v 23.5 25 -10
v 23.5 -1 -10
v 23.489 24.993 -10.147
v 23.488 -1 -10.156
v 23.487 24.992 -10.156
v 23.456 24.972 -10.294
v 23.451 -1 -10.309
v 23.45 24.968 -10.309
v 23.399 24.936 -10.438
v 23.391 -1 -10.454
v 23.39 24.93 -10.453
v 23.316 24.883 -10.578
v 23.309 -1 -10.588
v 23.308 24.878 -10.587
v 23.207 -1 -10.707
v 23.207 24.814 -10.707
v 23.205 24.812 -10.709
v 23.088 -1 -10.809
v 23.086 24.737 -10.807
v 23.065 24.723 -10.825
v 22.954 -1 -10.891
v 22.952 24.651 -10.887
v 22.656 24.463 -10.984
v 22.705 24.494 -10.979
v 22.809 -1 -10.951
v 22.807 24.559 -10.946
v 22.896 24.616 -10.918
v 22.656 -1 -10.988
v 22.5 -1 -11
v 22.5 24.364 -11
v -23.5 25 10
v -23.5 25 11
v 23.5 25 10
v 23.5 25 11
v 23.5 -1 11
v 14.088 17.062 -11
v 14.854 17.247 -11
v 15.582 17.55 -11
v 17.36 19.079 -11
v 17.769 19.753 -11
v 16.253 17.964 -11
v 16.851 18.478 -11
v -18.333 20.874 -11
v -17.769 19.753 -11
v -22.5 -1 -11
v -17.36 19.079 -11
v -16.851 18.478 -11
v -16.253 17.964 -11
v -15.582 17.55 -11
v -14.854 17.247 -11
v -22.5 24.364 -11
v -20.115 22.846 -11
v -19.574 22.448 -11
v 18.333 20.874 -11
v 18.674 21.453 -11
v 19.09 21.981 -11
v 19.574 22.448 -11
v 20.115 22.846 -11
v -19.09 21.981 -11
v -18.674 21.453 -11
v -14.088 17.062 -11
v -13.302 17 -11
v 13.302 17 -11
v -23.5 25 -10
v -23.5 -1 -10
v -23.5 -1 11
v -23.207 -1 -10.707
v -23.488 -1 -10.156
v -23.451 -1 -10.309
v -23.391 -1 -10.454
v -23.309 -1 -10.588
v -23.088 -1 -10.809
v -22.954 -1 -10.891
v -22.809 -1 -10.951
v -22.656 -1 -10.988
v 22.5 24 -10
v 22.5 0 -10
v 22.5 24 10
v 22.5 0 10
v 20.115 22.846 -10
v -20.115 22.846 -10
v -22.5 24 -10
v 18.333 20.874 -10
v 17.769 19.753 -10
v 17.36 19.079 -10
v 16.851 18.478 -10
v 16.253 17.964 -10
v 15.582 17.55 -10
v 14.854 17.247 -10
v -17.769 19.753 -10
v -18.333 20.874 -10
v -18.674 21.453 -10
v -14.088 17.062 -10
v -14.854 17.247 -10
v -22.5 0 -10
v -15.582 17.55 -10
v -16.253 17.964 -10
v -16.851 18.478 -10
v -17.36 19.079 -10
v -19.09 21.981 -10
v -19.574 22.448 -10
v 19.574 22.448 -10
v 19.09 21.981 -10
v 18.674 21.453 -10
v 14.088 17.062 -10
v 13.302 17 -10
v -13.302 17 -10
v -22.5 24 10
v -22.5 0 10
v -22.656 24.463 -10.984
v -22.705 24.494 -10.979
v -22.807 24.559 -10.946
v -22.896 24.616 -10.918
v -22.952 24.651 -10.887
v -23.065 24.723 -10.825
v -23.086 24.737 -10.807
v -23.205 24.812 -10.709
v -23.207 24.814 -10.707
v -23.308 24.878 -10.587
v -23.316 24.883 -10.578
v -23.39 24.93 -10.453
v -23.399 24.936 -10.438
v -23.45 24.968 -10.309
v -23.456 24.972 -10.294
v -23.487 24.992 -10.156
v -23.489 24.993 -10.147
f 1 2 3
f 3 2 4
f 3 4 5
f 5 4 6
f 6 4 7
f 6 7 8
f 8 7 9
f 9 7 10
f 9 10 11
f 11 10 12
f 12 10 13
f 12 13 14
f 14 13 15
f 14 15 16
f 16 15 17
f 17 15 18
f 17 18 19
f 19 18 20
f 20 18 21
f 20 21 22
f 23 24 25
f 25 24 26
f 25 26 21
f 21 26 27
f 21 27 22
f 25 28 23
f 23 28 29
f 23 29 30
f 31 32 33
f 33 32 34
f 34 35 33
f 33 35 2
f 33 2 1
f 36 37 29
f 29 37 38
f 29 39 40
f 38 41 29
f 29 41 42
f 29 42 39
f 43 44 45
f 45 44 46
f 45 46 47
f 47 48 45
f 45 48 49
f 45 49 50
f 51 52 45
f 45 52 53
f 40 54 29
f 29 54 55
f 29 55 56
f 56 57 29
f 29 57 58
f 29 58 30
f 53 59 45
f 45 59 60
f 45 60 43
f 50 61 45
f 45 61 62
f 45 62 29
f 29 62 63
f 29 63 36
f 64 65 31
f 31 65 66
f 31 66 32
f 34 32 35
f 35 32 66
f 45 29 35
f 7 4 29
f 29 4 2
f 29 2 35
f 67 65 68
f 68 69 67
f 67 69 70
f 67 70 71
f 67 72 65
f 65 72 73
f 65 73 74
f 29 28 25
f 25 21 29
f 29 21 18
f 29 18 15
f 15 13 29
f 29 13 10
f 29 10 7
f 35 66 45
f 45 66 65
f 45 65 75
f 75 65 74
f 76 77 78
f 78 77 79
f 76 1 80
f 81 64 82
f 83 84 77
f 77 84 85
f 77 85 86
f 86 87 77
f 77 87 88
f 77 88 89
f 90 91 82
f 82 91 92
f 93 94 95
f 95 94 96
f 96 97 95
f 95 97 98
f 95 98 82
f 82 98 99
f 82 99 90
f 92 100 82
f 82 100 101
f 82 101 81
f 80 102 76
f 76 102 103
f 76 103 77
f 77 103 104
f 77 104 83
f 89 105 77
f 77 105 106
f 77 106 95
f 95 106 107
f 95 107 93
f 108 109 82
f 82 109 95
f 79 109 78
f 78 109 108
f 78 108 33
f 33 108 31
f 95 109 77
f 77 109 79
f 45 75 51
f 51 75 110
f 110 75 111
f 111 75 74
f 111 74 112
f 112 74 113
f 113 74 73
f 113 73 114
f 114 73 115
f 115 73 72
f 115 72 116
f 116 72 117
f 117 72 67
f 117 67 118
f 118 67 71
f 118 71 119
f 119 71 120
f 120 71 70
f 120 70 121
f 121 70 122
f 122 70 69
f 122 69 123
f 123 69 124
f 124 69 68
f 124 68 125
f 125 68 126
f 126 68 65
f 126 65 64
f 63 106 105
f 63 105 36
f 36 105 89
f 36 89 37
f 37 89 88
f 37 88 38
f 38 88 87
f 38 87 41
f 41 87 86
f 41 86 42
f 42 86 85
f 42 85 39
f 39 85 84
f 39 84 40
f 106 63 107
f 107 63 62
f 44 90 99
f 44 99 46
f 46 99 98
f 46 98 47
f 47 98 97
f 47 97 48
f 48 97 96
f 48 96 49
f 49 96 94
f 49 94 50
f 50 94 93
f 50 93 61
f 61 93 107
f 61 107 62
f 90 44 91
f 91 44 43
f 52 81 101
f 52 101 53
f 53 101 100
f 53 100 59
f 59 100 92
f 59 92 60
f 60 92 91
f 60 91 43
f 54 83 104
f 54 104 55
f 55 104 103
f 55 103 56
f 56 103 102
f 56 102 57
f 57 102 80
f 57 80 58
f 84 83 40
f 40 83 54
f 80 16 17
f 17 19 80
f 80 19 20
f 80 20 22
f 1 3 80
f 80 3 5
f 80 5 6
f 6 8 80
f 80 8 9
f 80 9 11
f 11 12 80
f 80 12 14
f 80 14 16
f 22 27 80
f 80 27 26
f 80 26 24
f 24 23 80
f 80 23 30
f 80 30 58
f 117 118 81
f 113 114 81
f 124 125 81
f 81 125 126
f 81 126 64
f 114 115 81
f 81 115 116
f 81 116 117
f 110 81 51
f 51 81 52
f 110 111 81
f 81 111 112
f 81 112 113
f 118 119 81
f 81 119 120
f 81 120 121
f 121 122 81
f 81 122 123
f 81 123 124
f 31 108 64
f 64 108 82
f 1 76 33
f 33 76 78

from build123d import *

# Parameters (mm, degrees)
CROQUIS1_W              = 45
CROQUIS1_H              = 20
SALIENTE_EXTRUIR1_DEPTH = 25
VACIADO5_T              = 1
REDONDEO1_R             = 1
CORTAR_EXTRUIR1_START   = -10
CORTAR_EXTRUIR1_DEPTH   = 5
CHAFL_N2_SIZE           = 1


with BuildPart() as part:
    # Croquis1 → Saliente-Extruir1 (new body)
    with BuildSketch(Plane(origin=(0, 0, 0), x_dir=(1, 0, 0), z_dir=(0, 1, 0))):
        Rectangle(CROQUIS1_W, CROQUIS1_H)
    extrude(amount=SALIENTE_EXTRUIR1_DEPTH)

    # Vaciado5
    vaciado5_openings = [part.faces().sort_by_distance(p)[0] for p in [
        (0, 25, 0),
    ]]
    offset(amount=VACIADO5_T, openings=vaciado5_openings, kind=Kind.INTERSECTION)

    # Redondeo1
    # the kernel refuses this fillet: 1 mm, written as the material it takes off along each edge
    with BuildSketch(Plane(origin=(-23.5, -3.5, -11), x_dir=(1, 0, 0), z_dir=(0, 1, 0)), Plane(origin=(23.5, -3.5, -11), x_dir=(0, 0, 1), z_dir=(0, 1, 0))) as redondeo1_piece_1:
        with BuildLine():
            CenterArc((REDONDEO1_R, -REDONDEO1_R), REDONDEO1_R, 90, 90)
            Line((0, -REDONDEO1_R), (0, 0))
            Line((0, 0), (REDONDEO1_R, 0))
        make_face()
    extrude(amount=31, mode=Mode.SUBTRACT)

    # Croquis2 → Cortar-Extruir1 (cut)
    with BuildSketch(Plane.XY.offset(CORTAR_EXTRUIR1_START)):
        with BuildLine():
            ThreePointArc((17.768716436, 19.753391932), (15.925504733, 17.743649431), (13.30186607, 17))
            Line((13.30186607, 17), (-13.30186607, 17))
            ThreePointArc((-13.30186607, 17), (-15.925504733, 17.743649431), (-17.768716436, 19.753391932))
            Line((-17.768716436, 19.753391932), (-18.332567601, 20.87447701))
            ThreePointArc((-18.332567601, 20.87447701), (-19.090471642, 21.981034188), (-20.115254744, 22.846312707))
            Line((-20.115254744, 22.846312707), (-23.5, 25))
            Line((-23.5, 25), (23.5, 25))
            Line((23.5, 25), (20.115254744, 22.846312707))
            ThreePointArc((20.115254744, 22.846312707), (19.090471642, 21.981034188), (18.332567601, 20.87447701))
            Line((18.332567601, 20.87447701), (17.768716436, 19.753391932))
        make_face()
    extrude(amount=-CORTAR_EXTRUIR1_DEPTH, mode=Mode.SUBTRACT)

    # Chaflán1
    # the kernel refuses this chamfer: 1 mm, written as the material it takes off along each edge
    with BuildSketch(Plane(origin=(-22.5, 25, -10), x_dir=(0.027495876610585647, -0.9996219169112968, 0), z_dir=(0, 0, 1))) as chafl_n1_piece_1:
        with BuildLine():
            Line((1.028673195, 0), (-0.056547155, -1.027117794))
            Line((-0.056547155, -1.027117794), (-0.076539593, -1.026567876))
            ThreePointArc((-0.076539593, -1.026567876), (-0.034129227, -0.51339783), (-0.019992438, 0.000549918))
            Line((-0.019992438, 0.000549918), (0.000549918, 0.019992438))
            ThreePointArc((0.000549918, 0.019992438), (0.514497665, 0.00585565), (1.029223113, 0.019992438))
            Line((1.029223113, 0.019992438), (1.028673195, 0))
        make_face()
    extrude(amount=20, mode=Mode.SUBTRACT)

    # Chaflán2
    # the kernel refuses this chamfer: 1 mm, written as the material it takes off along each edge
    with BuildSketch(Plane(origin=(22.5, 25, 10), x_dir=(-0.027495876610585647, -0.9996219169112968, 0), z_dir=(0, 0, -1))) as chafl_n2_piece_1:
        Polygon((CHAFL_N2_SIZE * 0.999621916911, -CHAFL_N2_SIZE * 0.0274958766106), (-CHAFL_N2_SIZE * 0.0274958766106, -CHAFL_N2_SIZE * 0.999621916911), (0, 0), align=None)
    extrude(amount=20, mode=Mode.SUBTRACT)


solid = part.part
